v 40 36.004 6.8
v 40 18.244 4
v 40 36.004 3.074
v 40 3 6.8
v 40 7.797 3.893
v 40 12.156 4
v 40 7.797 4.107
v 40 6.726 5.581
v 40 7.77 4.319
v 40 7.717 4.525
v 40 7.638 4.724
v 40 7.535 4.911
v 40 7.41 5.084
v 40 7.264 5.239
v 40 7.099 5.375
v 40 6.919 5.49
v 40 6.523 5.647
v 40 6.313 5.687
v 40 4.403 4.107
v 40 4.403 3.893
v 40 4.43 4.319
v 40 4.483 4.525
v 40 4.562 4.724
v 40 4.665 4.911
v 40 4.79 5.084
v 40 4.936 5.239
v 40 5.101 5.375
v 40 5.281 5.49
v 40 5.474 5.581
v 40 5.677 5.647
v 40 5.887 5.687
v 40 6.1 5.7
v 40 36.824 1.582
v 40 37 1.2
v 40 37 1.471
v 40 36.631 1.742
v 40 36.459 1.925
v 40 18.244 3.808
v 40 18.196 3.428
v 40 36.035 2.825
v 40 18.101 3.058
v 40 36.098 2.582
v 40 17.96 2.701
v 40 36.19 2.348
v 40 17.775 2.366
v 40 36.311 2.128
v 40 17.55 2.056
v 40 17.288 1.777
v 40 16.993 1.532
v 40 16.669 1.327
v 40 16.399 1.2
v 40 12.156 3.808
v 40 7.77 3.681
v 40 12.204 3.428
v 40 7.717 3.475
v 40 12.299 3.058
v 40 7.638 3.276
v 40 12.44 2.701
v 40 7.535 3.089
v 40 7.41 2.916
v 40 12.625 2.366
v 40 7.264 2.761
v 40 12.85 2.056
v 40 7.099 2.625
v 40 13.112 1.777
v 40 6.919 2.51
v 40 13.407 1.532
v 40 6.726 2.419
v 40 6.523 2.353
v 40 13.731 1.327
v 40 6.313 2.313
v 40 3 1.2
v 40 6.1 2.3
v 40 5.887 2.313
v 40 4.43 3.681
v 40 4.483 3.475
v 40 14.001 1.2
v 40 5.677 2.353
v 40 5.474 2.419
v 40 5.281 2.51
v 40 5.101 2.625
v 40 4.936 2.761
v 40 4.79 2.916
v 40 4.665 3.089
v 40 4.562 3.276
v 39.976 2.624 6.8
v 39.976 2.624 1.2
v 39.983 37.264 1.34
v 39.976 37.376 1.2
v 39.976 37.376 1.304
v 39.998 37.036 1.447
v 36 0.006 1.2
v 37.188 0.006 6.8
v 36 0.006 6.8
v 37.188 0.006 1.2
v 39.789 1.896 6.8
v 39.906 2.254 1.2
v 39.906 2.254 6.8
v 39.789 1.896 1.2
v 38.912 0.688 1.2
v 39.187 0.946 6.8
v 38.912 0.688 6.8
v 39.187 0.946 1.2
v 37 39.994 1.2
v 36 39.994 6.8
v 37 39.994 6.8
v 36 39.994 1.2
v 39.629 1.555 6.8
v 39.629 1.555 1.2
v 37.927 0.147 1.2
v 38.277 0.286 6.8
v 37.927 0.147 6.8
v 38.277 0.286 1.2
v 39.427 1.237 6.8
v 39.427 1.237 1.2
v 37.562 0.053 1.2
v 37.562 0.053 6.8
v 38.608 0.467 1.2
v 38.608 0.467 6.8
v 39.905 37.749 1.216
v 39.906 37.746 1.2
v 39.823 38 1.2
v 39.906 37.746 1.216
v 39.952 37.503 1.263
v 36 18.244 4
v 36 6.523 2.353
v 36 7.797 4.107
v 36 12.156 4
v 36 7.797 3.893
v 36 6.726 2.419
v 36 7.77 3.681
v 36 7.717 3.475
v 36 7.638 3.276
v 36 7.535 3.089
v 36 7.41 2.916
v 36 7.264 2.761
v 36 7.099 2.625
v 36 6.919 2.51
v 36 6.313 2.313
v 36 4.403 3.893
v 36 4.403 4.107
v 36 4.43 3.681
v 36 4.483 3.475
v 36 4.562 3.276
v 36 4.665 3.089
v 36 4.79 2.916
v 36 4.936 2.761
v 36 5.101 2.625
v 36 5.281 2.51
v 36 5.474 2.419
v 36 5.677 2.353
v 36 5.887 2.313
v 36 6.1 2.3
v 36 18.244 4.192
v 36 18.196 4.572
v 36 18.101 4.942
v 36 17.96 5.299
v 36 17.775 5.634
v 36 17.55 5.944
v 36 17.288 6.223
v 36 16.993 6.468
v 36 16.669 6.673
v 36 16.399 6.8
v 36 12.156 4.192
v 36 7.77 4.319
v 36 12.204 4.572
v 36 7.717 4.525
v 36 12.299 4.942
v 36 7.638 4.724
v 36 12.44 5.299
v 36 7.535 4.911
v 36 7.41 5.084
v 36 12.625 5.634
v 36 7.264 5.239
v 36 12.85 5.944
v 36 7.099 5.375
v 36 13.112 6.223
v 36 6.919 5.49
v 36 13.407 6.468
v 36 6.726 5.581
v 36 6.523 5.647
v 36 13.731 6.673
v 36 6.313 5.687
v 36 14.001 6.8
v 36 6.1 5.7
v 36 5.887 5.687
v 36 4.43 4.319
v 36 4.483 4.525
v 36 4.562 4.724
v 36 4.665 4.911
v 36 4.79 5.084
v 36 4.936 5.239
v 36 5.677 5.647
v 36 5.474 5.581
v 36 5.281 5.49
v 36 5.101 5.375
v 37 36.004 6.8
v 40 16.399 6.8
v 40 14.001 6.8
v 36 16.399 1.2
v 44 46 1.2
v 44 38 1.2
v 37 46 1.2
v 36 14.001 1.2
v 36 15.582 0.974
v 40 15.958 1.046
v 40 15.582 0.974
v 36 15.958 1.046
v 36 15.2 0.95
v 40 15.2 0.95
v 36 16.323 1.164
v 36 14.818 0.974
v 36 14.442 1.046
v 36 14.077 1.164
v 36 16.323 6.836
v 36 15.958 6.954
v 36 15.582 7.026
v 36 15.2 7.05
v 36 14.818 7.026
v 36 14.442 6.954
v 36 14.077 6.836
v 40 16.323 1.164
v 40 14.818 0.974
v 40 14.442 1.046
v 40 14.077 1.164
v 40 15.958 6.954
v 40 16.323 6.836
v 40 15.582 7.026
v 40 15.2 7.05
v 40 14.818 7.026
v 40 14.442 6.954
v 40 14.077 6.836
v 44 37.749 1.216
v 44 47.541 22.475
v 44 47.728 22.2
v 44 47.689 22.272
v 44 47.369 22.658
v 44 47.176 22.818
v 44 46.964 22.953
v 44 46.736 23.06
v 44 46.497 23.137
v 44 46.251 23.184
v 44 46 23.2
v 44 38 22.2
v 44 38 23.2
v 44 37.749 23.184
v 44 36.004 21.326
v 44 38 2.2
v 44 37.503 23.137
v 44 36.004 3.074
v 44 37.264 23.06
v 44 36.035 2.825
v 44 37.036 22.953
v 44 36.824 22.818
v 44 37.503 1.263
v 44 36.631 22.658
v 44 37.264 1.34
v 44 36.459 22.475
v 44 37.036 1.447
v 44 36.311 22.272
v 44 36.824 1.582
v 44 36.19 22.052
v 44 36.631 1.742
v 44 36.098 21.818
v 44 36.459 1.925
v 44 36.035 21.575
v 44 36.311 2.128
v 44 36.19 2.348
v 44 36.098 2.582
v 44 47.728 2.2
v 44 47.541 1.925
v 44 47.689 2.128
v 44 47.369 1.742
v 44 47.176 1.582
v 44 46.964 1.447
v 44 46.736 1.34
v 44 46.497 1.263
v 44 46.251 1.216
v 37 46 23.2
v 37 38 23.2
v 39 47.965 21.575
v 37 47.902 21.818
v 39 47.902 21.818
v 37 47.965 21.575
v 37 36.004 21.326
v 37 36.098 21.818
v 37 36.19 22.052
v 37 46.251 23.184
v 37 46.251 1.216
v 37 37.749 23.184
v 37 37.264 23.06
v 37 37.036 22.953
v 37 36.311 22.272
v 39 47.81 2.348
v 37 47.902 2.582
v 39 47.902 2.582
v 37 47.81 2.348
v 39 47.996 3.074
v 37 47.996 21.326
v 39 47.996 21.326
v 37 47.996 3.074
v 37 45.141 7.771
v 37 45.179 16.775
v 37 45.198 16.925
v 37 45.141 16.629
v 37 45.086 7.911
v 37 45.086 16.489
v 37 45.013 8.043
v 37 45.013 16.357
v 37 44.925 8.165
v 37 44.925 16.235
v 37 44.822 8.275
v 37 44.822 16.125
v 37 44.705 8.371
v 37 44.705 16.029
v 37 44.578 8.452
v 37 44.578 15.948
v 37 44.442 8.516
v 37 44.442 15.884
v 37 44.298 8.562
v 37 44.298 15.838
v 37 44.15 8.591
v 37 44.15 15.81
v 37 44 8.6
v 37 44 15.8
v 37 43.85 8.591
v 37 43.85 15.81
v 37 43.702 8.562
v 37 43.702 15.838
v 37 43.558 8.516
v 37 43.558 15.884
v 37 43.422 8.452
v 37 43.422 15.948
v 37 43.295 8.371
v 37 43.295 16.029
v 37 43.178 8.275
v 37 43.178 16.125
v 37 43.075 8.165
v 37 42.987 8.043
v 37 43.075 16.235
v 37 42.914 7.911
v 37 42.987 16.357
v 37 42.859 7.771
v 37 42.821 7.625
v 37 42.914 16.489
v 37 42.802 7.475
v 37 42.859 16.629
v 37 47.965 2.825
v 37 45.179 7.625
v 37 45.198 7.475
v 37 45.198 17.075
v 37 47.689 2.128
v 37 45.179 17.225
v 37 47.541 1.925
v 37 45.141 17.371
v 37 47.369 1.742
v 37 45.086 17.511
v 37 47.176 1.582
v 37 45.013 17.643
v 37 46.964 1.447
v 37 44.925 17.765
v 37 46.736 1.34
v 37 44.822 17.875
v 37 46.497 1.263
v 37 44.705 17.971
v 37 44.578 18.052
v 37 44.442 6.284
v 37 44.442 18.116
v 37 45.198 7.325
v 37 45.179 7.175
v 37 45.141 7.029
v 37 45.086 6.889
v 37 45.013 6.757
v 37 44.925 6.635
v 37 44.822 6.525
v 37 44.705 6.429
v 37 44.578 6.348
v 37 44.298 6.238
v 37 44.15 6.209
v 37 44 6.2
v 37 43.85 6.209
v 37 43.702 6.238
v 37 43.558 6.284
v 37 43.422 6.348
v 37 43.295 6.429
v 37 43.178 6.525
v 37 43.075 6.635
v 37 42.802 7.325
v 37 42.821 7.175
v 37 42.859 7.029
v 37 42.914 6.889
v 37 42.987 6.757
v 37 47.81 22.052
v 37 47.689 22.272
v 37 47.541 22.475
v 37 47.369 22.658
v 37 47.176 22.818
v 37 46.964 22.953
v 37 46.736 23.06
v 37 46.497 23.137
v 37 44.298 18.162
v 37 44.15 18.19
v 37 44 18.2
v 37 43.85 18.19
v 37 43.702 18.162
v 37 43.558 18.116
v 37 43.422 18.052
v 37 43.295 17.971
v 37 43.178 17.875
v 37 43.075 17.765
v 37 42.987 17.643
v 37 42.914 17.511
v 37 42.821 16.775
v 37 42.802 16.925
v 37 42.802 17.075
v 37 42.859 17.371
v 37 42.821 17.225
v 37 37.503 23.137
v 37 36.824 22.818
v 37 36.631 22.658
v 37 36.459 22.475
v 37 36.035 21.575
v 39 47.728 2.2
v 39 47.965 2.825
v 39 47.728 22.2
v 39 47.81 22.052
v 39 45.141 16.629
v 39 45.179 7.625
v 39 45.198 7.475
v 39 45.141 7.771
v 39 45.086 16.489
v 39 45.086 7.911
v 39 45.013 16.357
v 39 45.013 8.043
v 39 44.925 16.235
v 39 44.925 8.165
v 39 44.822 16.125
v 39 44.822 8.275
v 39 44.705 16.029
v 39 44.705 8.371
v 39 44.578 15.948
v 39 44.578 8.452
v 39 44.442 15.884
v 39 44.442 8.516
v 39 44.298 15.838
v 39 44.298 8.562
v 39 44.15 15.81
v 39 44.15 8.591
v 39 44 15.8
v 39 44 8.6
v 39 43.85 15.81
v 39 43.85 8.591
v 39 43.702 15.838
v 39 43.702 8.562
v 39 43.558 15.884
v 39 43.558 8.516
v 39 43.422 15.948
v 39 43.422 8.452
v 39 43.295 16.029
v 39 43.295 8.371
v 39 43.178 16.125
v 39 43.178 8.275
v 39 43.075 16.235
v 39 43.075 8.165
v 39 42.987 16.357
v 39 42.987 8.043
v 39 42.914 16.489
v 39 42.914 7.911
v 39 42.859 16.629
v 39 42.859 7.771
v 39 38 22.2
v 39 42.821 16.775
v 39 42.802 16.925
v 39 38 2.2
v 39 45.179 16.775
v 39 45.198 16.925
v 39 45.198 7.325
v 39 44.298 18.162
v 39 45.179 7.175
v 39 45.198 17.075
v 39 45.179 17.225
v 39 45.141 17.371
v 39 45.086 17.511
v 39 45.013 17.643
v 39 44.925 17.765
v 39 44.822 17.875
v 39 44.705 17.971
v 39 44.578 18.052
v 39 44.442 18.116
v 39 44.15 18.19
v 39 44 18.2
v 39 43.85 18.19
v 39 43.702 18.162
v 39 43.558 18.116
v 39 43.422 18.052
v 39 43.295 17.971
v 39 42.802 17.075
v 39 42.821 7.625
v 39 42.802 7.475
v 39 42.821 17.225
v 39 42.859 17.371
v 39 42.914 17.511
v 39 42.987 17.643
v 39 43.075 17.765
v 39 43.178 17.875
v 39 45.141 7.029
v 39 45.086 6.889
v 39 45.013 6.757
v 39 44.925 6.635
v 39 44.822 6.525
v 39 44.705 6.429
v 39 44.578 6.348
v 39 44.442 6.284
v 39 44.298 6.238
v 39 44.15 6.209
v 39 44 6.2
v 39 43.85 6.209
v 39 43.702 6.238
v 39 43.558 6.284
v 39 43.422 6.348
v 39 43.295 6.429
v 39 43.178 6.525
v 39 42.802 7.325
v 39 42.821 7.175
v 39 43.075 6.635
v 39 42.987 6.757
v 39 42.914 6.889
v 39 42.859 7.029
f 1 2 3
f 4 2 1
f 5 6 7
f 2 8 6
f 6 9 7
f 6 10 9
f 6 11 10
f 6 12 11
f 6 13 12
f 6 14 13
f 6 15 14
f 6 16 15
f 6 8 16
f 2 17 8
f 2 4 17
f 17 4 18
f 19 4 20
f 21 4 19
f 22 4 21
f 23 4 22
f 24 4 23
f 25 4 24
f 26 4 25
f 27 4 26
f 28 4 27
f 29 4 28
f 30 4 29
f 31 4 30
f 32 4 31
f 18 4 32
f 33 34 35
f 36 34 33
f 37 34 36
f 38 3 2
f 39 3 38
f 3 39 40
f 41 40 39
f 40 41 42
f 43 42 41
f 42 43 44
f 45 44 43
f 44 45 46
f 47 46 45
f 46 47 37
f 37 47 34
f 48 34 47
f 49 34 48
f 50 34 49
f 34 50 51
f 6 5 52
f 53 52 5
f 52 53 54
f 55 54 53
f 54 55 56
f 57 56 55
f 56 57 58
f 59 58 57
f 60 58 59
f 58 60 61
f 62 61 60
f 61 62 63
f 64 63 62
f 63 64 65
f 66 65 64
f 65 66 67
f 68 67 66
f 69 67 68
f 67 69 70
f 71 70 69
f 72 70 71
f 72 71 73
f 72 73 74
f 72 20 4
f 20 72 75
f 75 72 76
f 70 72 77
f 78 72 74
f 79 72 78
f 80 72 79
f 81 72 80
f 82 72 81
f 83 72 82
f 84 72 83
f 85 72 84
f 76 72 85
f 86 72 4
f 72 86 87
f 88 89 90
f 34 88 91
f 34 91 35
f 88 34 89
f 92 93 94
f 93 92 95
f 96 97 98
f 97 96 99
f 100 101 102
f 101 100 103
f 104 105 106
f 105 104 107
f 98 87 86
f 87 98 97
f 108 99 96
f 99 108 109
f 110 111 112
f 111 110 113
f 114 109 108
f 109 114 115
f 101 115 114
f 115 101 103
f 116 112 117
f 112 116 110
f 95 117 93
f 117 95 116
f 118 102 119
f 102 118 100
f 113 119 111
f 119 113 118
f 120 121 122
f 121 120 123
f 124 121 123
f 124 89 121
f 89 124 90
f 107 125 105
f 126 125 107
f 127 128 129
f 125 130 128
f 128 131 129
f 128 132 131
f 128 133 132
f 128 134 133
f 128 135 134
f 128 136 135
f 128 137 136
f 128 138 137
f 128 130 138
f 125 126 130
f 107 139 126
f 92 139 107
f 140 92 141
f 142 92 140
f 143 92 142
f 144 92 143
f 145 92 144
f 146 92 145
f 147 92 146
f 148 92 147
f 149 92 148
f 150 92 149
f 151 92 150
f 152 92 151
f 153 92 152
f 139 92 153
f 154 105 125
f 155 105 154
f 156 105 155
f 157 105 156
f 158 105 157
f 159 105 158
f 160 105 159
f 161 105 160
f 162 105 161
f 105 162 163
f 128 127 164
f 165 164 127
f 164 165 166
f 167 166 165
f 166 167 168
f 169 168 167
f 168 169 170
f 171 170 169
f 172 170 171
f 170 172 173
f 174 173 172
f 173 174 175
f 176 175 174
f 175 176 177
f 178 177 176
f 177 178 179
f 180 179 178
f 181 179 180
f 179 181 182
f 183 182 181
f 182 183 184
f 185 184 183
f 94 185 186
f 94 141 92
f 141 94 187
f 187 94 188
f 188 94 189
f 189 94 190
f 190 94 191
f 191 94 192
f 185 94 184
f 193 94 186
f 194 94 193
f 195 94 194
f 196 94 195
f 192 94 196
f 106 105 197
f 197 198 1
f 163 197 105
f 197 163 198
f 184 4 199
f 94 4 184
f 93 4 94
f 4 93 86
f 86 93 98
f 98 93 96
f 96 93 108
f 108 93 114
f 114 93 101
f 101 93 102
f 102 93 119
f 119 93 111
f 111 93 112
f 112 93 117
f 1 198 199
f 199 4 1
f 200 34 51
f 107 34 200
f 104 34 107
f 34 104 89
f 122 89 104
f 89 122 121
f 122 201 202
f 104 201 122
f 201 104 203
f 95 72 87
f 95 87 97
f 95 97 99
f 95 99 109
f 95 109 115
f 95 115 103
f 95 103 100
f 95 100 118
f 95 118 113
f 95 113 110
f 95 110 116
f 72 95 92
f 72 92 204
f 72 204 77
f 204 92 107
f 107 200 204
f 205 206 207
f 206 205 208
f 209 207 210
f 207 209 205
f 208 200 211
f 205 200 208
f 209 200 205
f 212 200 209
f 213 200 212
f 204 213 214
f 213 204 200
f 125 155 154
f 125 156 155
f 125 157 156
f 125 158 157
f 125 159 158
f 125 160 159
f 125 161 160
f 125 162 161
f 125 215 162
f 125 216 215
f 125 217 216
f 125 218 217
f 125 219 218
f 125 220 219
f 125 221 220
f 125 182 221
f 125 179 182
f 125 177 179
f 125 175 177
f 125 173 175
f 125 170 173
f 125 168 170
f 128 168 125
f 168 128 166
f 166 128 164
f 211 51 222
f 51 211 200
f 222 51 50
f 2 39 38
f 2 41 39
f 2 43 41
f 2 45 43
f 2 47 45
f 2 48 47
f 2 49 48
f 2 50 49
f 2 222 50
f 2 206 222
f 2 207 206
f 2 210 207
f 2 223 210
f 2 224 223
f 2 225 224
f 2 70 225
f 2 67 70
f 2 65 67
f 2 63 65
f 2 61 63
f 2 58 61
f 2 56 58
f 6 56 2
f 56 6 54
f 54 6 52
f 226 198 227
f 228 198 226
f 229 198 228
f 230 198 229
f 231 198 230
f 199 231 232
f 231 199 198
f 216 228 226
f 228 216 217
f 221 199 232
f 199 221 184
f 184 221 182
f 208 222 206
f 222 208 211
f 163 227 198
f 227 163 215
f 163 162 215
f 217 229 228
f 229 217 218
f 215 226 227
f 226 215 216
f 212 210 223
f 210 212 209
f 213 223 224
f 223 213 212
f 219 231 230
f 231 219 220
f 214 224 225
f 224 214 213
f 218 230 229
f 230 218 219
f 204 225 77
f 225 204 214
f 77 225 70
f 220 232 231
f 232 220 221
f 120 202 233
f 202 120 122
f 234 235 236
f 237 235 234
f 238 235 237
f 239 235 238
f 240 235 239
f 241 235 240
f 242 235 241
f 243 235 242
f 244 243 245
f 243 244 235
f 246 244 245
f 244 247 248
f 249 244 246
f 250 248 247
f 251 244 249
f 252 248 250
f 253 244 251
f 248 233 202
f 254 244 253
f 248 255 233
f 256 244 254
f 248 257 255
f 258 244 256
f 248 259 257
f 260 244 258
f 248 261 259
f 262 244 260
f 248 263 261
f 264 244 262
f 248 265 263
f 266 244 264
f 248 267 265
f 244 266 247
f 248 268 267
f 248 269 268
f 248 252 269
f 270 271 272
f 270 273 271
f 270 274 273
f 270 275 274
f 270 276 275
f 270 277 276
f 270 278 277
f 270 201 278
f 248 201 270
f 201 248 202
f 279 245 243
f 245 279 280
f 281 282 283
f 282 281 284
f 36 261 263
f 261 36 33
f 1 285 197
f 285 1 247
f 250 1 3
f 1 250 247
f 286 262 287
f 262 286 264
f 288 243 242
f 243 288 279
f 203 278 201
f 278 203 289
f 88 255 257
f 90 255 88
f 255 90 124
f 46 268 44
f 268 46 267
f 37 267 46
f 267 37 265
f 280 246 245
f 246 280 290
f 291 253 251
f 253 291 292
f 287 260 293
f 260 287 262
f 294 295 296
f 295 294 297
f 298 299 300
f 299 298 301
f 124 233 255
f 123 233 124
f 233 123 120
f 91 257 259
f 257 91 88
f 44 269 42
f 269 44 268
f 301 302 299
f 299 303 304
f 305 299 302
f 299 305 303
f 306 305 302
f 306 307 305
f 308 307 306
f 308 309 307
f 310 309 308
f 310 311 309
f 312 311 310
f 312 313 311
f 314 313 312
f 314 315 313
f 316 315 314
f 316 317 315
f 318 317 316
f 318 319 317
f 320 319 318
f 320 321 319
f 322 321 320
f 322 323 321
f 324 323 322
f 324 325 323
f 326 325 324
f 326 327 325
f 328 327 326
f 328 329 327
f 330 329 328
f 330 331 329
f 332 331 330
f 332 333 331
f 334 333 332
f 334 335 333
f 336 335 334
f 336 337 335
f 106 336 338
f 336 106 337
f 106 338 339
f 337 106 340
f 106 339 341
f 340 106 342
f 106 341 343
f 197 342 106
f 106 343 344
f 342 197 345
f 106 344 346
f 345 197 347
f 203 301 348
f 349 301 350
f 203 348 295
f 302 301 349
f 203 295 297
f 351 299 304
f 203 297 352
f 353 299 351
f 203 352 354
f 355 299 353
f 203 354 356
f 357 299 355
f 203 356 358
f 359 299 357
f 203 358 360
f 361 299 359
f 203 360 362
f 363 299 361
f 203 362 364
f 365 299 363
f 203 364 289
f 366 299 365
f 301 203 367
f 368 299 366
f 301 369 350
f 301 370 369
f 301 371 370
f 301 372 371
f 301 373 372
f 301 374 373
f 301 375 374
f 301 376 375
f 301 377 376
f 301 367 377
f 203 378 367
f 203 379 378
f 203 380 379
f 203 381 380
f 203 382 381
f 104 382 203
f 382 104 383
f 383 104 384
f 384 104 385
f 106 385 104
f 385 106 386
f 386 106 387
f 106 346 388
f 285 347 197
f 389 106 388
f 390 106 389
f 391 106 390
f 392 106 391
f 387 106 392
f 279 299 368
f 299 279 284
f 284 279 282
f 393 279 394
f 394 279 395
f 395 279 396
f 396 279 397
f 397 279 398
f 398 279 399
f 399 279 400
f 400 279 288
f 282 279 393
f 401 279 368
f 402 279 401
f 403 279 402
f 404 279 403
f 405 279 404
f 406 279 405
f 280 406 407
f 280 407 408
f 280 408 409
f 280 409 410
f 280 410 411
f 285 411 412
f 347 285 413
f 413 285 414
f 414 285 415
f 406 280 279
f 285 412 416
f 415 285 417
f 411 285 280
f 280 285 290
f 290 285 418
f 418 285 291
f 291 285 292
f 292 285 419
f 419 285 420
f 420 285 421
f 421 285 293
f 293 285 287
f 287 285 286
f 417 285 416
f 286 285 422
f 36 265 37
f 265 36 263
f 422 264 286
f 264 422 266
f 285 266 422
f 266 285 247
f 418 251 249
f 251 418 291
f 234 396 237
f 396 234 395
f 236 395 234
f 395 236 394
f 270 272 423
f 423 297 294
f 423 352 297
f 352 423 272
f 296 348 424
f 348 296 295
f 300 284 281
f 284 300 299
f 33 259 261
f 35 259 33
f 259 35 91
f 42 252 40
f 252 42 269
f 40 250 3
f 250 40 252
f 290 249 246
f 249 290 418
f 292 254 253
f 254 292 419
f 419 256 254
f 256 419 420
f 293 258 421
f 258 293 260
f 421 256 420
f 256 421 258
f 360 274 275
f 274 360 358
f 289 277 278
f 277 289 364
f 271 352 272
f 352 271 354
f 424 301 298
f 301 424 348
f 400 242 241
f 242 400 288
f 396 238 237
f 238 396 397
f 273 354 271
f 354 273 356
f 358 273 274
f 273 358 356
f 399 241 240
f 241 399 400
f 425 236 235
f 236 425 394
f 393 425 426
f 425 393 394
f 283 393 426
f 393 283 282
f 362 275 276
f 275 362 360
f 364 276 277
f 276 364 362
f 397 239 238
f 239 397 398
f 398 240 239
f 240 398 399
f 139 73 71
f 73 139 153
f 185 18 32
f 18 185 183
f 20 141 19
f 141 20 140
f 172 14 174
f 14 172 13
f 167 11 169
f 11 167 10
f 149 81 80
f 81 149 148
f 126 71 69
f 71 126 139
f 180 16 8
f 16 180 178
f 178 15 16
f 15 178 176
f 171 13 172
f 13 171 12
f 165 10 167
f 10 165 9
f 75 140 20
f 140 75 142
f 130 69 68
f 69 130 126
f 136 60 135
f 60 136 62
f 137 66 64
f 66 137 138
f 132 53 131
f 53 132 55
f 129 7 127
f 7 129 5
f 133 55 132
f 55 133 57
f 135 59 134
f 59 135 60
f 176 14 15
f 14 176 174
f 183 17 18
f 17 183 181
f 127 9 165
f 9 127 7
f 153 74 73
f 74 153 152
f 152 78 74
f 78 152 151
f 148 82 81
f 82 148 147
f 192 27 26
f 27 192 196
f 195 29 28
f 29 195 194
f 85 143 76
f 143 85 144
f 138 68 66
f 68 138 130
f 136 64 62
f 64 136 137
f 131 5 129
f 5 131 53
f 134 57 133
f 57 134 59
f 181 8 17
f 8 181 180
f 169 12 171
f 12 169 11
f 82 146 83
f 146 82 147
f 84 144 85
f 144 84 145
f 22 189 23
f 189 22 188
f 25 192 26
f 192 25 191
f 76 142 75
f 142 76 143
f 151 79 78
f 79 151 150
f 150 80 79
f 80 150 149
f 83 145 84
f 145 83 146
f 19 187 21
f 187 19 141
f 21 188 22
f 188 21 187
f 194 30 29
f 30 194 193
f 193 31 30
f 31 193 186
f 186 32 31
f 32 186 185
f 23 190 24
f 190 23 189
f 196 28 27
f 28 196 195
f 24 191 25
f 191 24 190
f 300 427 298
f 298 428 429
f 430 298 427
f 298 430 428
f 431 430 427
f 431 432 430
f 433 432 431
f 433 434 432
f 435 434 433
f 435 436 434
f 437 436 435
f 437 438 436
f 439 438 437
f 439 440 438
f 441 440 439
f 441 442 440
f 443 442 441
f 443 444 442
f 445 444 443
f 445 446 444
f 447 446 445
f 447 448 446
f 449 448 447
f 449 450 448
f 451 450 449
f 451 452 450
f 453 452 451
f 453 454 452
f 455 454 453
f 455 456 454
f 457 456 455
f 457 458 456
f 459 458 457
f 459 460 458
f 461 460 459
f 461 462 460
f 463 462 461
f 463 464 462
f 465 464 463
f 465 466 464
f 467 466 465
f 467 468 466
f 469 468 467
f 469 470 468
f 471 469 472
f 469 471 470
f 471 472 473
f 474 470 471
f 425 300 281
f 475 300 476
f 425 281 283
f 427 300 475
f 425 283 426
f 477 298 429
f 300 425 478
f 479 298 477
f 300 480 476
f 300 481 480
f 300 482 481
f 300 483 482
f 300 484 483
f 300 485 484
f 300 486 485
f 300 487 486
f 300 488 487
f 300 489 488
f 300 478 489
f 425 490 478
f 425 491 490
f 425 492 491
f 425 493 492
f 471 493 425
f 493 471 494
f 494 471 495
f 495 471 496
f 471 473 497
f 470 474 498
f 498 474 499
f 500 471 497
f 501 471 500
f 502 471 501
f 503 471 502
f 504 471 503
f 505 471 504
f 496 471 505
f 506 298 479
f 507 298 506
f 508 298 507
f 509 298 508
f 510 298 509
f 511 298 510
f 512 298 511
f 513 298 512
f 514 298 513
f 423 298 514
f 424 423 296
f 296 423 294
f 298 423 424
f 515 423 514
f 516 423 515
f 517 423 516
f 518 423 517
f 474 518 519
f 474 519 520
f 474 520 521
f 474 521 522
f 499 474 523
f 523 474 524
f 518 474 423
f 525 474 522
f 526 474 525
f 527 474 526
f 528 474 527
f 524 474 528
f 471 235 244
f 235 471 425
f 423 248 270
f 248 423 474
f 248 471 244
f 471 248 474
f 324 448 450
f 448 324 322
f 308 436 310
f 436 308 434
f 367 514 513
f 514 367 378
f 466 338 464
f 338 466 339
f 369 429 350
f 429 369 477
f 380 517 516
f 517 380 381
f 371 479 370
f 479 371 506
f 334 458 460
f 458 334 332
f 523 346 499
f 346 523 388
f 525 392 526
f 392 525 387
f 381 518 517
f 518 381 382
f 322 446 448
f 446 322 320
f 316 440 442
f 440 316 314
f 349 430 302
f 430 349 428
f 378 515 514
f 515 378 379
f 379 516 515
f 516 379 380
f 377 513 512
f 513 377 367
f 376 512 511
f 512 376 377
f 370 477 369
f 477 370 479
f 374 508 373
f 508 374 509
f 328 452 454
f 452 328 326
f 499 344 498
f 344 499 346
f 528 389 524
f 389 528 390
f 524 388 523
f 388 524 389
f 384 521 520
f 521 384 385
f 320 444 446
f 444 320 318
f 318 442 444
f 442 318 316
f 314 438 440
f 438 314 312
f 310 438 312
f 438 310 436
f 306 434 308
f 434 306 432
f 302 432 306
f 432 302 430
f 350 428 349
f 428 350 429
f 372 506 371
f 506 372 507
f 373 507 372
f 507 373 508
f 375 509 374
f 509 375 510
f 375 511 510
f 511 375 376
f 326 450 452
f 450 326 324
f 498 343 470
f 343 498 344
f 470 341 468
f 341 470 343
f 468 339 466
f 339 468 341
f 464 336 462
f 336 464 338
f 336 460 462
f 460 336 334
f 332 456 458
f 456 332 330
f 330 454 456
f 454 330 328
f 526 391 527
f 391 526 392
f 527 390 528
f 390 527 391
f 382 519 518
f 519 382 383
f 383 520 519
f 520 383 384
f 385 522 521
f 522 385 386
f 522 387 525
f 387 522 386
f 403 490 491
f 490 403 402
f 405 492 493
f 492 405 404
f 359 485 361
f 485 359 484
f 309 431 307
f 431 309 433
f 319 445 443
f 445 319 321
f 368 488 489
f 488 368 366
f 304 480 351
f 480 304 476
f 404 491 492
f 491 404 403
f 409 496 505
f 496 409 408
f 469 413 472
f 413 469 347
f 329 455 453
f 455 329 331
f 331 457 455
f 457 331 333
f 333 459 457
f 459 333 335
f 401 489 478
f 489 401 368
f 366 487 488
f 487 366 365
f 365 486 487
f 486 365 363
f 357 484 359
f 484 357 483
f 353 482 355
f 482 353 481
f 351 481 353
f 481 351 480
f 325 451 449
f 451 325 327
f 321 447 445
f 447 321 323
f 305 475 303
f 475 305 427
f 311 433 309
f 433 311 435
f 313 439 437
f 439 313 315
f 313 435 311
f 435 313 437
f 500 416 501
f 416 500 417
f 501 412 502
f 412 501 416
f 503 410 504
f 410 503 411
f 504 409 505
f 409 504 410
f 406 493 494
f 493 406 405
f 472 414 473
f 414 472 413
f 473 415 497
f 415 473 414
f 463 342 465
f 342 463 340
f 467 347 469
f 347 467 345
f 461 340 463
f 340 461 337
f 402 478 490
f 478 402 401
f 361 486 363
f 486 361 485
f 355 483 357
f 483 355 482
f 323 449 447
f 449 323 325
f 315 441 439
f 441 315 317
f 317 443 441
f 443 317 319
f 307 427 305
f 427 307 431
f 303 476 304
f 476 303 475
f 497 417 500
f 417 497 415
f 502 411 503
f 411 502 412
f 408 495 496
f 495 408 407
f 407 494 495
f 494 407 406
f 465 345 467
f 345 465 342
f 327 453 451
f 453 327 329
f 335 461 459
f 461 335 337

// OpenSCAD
// file: ../lib/nutsnbolts/data-access.scad
// Norm Nuts and Bolts - a OpenSCAD library
// Copyright (C) 2012  Johannes Kneer

// This program is free software: you can redistribute it and/or modify
// it under the terms of the GNU General Public License as published by
// the Free Software Foundation, either version 3 of the License, or
// (at your option) any later version.

// This program is distributed in the hope that it will be useful,
// but WITHOUT ANY WARRANTY; without even the implied warranty of
// MERCHANTABILITY or FITNESS FOR A PARTICULAR PURPOSE.  See the
// GNU General Public License for more details.

// You should have received a copy of the GNU General Public License
// along with this program.  If not, see <http://www.gnu.org/licenses/>.


// DATABASE ACCESS FUNCTIONS AND CONSTANTS



// == CONSTANTS ==

// screw table access keys
_NB_S_DESC            = 0;
_NB_S_FAMKEY			    = 1;
_NB_S_LENGTH          = 2;
_NB_S_NOTHREAD_LENGTH = 3;

_NB_F_DESC			      = 0;
_NB_F_OUTER_DIA       = 1;
_NB_F_INNER_DIA       = 2;
_NB_F_LEAD            = 3;
_NB_F_KEY             = 4;
_NB_F_KEY_DEPTH       = 5;
_NB_F_HEAD_HEIGHT     = 6;
_NB_F_HEAD_DIA        = 7;
_NB_F_NUT_KEY         = 8;
_NB_F_NUT_HEIGHT      = 9;
_NB_F_PITCH_FINE      = 10;
_NB_F_PITCH_MEDIUM    = 11;
_NB_F_PITCH_COARSE    = 12;


// == FUNCTIONS ==

// _get_screw("descriptor")   with descriptor = M8x25
//   find the line for a general object in the data matrix

function _get_screw(n) = data_screw[search([n], data_screw)[0]];
function _get_screw_fam(n) = data_screw_fam[search([_get_screw(n)[_NB_S_FAMKEY]], data_screw_fam)[0]];

function _get_fam(n) = data_screw_fam[search([n], data_screw_fam)[0]];


// _get_XXXXX("descriptor") functions
// find a single property in the database

function _get_desc(n)        = _get_screw(n)[_NB_S_DESC];
function _get_famkey(n)         = _get_screw(n)[_NB_S_FAMKEY];
function _get_length(n)      = _get_screw(n)[_NB_S_LENGTH];
function _get_nt_length(n)   = _get_screw(n)[_NB_S_NOTHREAD_LENGTH];

function _get_outer_dia(n)   = _get_screw_fam(n)[_NB_F_OUTER_DIA];
function _get_inner_dia(n)   = _get_screw_fam(n)[_NB_F_INNER_DIA];
function _get_lead(n)        = _get_screw_fam(n)[_NB_F_LEAD];
function _get_head_height(n) = _get_screw_fam(n)[_NB_F_HEAD_HEIGHT];
function _get_head_dia(n)    = _get_screw_fam(n)[_NB_F_HEAD_DIA];
function _get_nut_key(n)     = _get_screw_fam(n)[_NB_F_NUT_KEY];
function _get_nut_height(n)  = _get_screw_fam(n)[_NB_F_NUT_HEIGHT];
function _get_fine_pitch(n)  = _get_screw_fam(n)[_NB_F_PITCH_FINE];
function _get_medium_pitch(n)  = _get_screw_fam(n)[_NB_F_PITCH_MEDIUM];
function _get_coarse_pitch(n)  = _get_screw_fam(n)[_NB_F_PITCH_COARSE];
// file: ../lib/knurledFinishLib/knurledFinishLib_v2.scad
/*
 * knurledFinishLib_v2.scad
 * 
 * Written by aubenc @ Thingiverse
 *
 * This script is licensed under the Public Domain license.
 *
 * http://www.thingiverse.com/thing:31122
 *
 * Derived from knurledFinishLib.scad (also Public Domain license) available at
 *
 * http://www.thingiverse.com/thing:9095
 *
 * Usage:
 *
 *	 Drop this script somewhere where OpenSCAD can find it (your current project's
 *	 working directory/folder or your OpenSCAD libraries directory/folder).
 *
 *	 Add the line:
 *
 *		use <knurledFinishLib_v2.scad>
 *
 *	 in your OpenSCAD script and call either...
 *
 *    knurled_cyl( Knurled cylinder height,
 *                 Knurled cylinder outer diameter,
 *                 Knurl polyhedron width,
 *                 Knurl polyhedron height,
 *                 Knurl polyhedron depth,
 *                 Cylinder ends smoothed height,
 *                 Knurled surface smoothing amount );
 *
 *  ...or...
 *
 *    knurl();
 *
 *	If you use knurled_cyl() module, you need to specify the values for all and
 *
 *  Call the module ' help(); ' for a little bit more of detail
 *  and/or take a look to the PDF available at http://www.thingiverse.com/thing:9095
 *  for a in depth descrition of the knurl properties.
 */


module knurl(	k_cyl_hg	= 12,
					k_cyl_od	= 25,
					knurl_wd =  3,
					knurl_hg =  4,
					knurl_dp =  1.5,
					e_smooth =  2,
					s_smooth =  0)
{
    knurled_cyl(k_cyl_hg, k_cyl_od, 
                knurl_wd, knurl_hg, knurl_dp, 
                e_smooth, s_smooth);
}

module knurled_cyl(chg, cod, cwd, csh, cdp, fsh, smt)
{
    cord=(cod+cdp+cdp*smt/100)/2;
    cird=cord-cdp;
    cfn=round(2*cird*PI/cwd);
    clf=360/cfn;
    crn=ceil(chg/csh);

    echo("knurled cylinder max diameter: ", 2*cord);
    echo("knurled cylinder min diameter: ", 2*cird);

	 if( fsh < 0 )
    {
        union()
        {
            shape(fsh, cird+cdp*smt/100, cord, cfn*4, chg);

            translate([0,0,-(crn*csh-chg)/2])
              knurled_finish(cord, cird, clf, csh, cfn, crn);
        }
    }
    else if ( fsh == 0 )
    {
        intersection()
        {
            cylinder(h=chg, r=cord-cdp*smt/100, $fn=2*cfn, center=false);

            translate([0,0,-(crn*csh-chg)/2])
              knurled_finish(cord, cird, clf, csh, cfn, crn);
        }
    }
    else
    {
        intersection()
        {
            shape(fsh, cird, cord-cdp*smt/100, cfn*4, chg);

            translate([0,0,-(crn*csh-chg)/2])
              knurled_finish(cord, cird, clf, csh, cfn, crn);
        }
    }
}

module knurled_cyl_str(chg, cod, cwd, cdp, fsh)
{
    cord=(cod+cdp)/2;
    cird=cord-cdp;
    cfn=round(2*cird*PI/cwd);
    clf=360/cfn;
    //crn=ceil(chg/csh);

    echo("knurled cylinder max diameter: ", 2*cord);
    echo("knurled cylinder min diameter: ", 2*cird);

	 if( fsh < 0 )
    {
        union()
        {
            shape(fsh, cird, cord, cfn*4, chg);


            knurled_finish_str(cord, cird, clf, chg, cfn);
        }
    }
    else if ( fsh == 0 )
    {
        intersection()
        {
            cylinder(h=chg, r=cord, $fn=2*cfn, center=false);

            knurled_finish_str(cord, cird, clf, chg, cfn);
        }
    }
    else
    {
        intersection()
        {
            shape(fsh, cird, cord, cfn*4, chg);

            knurled_finish_str(cord, cird, clf, chg, cfn);
        }
    }
}

module shape(hsh, ird, ord, fn4, hg)
{
	x0= 0;	x1 = hsh > 0 ? ird : ord;		x2 = hsh > 0 ? ord : ird;
	y0=-0.1;	y1=0;	y2=abs(hsh);	y3=hg-abs(hsh);	y4=hg;	y5=hg+0.1;

	if ( hsh >= 0 )
	{
		rotate_extrude(convexity=10, $fn=fn4)
		polygon(points=[	[x0,y1],[x1,y1],[x2,y2],[x2,y3],[x1,y4],[x0,y4]	],
					paths=[	[0,1,2,3,4,5]	]);
	}
	else
	{
		rotate_extrude(convexity=10, $fn=fn4)
		polygon(points=[	[x0,y0],[x1,y0],[x1,y1],[x2,y2],
								[x2,y3],[x1,y4],[x1,y5],[x0,y5]	],
					paths=[	[0,1,2,3,4,5,6,7]	]);
	}
}

module knurled_finish(ord, ird, lf, sh, fn, rn)
{
    for(j=[0:rn-1])
    {   
        h0=sh*j;
        h1=sh*(j+1/2);
        h2=sh*(j+1);
        for(i=[0:fn-1])
        {
            lf0=lf*i;
            lf1=lf*(i+1/2);
            lf2=lf*(i+1);
            polyhedron(
                points=[
                     [ 0,0,h0],
                     [ ord*cos(lf0), ord*sin(lf0), h0],
                     [ ird*cos(lf1), ird*sin(lf1), h0],
                     [ ord*cos(lf2), ord*sin(lf2), h0],

                     [ ird*cos(lf0), ird*sin(lf0), h1],
                     [ ord*cos(lf1), ord*sin(lf1), h1],
                     [ ird*cos(lf2), ird*sin(lf2), h1],

                     [ 0,0,h2],
                     [ ord*cos(lf0), ord*sin(lf0), h2],
                     [ ird*cos(lf1), ird*sin(lf1), h2],
                     [ ord*cos(lf2), ord*sin(lf2), h2]
                    ],
                faces=[
                     [0,1,2],[2,3,0],
                     [1,0,4],[4,0,7],[7,8,4],
                     [8,7,9],[10,9,7],
                     [10,7,6],[6,7,0],[3,6,0],
                     [2,1,4],[3,2,6],[10,6,9],[8,9,4],
                     [4,5,2],[2,5,6],[6,5,9],[9,5,4]
                    ],
                convexity=5);
         }
    }
}

module knurled_finish_str(ord, ird, lf, sh, fn)
{
    for(i=[0:fn-1])
    {
        lf0=lf*i;
        lf1=lf*(i+1/2);
        lf2=lf*(i+1);
        polyhedron(
            points=[
                 [ 0,0,0],
                 [ ord*cos(lf0), ord*sin(lf0), 0],
                 [ ird*cos(lf1), ird*sin(lf1), 0],
                 [ ord*cos(lf2), ord*sin(lf2), 0],

                 [ 0,0,sh],
                 [ ord*cos(lf0), ord*sin(lf0), sh],
                 [ ird*cos(lf1), ird*sin(lf1), sh],
                 [ ord*cos(lf2), ord*sin(lf2), sh]
                ],
            faces=[
                 [0,1,2],[2,3,0],
                 [4,7,6],[6,5,4],   
                 [1,0,4],[4,5,1],
                 [0,3,7],[7,4,0],
                 [1,5,6],[6,2,1],
                 [3,2,6],[6,7,3]
                ],
            convexity=5);
     }
}

module knurl_help()
{
	echo();
	echo("    Knurled Surface Library  v2  ");
   echo("");
	echo("      Modules:    ");
	echo("");
	echo("        knurled_cyl(parameters... );    -    Requires a value for each an every expected parameter (see bellow)    ");
	echo("");
	echo("        knurl();    -    Call to the previous module with a set of default parameters,    ");
	echo("                                  values may be changed by adding 'parameter_name=value'        i.e.     knurl(s_smooth=40);    ");
	echo("");
	echo("      Parameters, all of them in mm but the last one.    ");
	echo("");
	echo("        k_cyl_hg       -   [ 12   ]  ,,  Height for the knurled cylinder    ");
	echo("        k_cyl_od      -   [ 25   ]  ,,  Cylinder's Outer Diameter before applying the knurled surfacefinishing.    ");
	echo("        knurl_wd     -   [   3   ]  ,,  Knurl's Width.    ");
	echo("        knurl_hg      -   [   4   ]  ,,  Knurl's Height.    ");
	echo("        knurl_dp     -   [  1.5 ]  ,,  Knurl's Depth.    ");
	echo("        e_smooth   -    [  2   ]  ,,  Bevel's Height at the bottom and the top of the cylinder    ");
	echo("        s_smooth   -    [  0   ]  ,,  Knurl's Surface Smoothing :  File donwn the top of the knurl this value, i.e. 40 will snooth it a 40%.    ");
	echo("");
}
// file: mount_base.scad
include <../lib/nutsnbolts/cyl_head_bolt.scad>;
include <../lib/knurledFinishLib/knurledFinishLib_v2.scad>;


$fn = 50;
clearance = 0.4; // Nozzle width

module carriage_connector() {
    base_len = 34;
    base_height = 8;
    hole_dist = 23;
    ofst = (base_len - hole_dist) / 2;
    nut_width=3.2;
    translate([3,3,0])difference(){
        minkowski(){
            cube([base_len, base_len, base_height-1]);
            cylinder(r=3,h=1);
        }
        translate([ofst, ofst, base_height])
        hole_through("M4", l = base_height, cld=clearance);
        translate([ofst + hole_dist, ofst, base_height])
        hole_through("M4", l = base_height, cld=clearance);
        translate([ofst, ofst + hole_dist, base_height])
        hole_through("M4", l = base_height, cld=clearance);
        translate([ofst + hole_dist, ofst + hole_dist, base_height ])
        hole_through("M4", l = base_height, cld=clearance);
        translate([ofst, ofst, base_height ])
        nutcatch_parallel("M4", l=nut_width + clearance, clk=clearance);
        translate([ofst + hole_dist, ofst, base_height ])
        nutcatch_parallel("M4", l=nut_width + clearance, clk=clearance);
        translate([ofst, ofst + hole_dist, base_height ])
        nutcatch_parallel("M4", l=nut_width + clearance, clk=clearance);
        translate([ofst + hole_dist, ofst + hole_dist, base_height ])
        nutcatch_parallel("M4", l=nut_width + clearance, clk=clearance);
    }
}

module nozzle_mount_base() {
    union(){
        translate([0,-6,29])rotate([-45,0,0])difference(){
            cube([40,6*sqrt(2),6*sqrt(2)]);
            translate([8,0,0])cube([24,6*sqrt(2),6*sqrt(2)]);
            translate([4,3*sqrt(2),6*sqrt(2)])hole_through("M3",l=6*sqrt(2), cld=clearance);
            translate([4,3*sqrt(2),2.4])nutcatch_parallel("M3", l=2.4,clk=clearance);
            translate([36,3*sqrt(2),6*sqrt(2)])hole_through("M3",l=6*sqrt(2), cld=clearance);
            translate([36,3*sqrt(2),2.4])nutcatch_parallel("M3", l=2.4,clk=clearance);           
        }
        translate([0,0,8])difference(){
            cube([40,6,21]);
            translate([0,-6,21])rotate([-45,0,0])cube([40,6*sqrt(2),6*sqrt(2)]);
            
        }
        difference(){
            translate([3+clearance/2,clearance,0])cube([17-clearance,6-clearance,8]);
            translate([0,3,4])rotate([0,-90,0])hole_through("M3", l=40, cld=0);
            translate([3,3,4])rotate([0,-90,0])nutcatch_parallel("M3", l=2.4,clk=0.2);
        }
    }
}
// main file
include <mount_base.scad>

module autoleveler(){
    difference(){
        union(){
            intersection(){
                carriage_connector();
                translate([36,0,1+clearance/2])cube([4,40,6-clearance]);
            }
            translate([40,15.2,4])rotate([0,90,0])hole_through("M3", l=0,h=4, hcld=1-clearance);
            translate([37,36,23+clearance/2])rotate([0,90,0])translate([2,2,0])minkowski(){
                cube([18,8,6]);
                cylinder(r=2,h=1);
            };
        }
        translate([41,6.1,4])rotate([0,90,0])hole_through("M3", l=6, cld=clearance);   
        translate([39,38,2+clearance/2])cube([5,10,20]);
        translate([36,44,7+clearance])rotate([0,-90,0])hole_through("M2", l=6, cld=clearance);
        translate([36,44,17])rotate([0,-90,0])hole_through("M2", l=6, cld=clearance); 
    }
}

autoleveler();
